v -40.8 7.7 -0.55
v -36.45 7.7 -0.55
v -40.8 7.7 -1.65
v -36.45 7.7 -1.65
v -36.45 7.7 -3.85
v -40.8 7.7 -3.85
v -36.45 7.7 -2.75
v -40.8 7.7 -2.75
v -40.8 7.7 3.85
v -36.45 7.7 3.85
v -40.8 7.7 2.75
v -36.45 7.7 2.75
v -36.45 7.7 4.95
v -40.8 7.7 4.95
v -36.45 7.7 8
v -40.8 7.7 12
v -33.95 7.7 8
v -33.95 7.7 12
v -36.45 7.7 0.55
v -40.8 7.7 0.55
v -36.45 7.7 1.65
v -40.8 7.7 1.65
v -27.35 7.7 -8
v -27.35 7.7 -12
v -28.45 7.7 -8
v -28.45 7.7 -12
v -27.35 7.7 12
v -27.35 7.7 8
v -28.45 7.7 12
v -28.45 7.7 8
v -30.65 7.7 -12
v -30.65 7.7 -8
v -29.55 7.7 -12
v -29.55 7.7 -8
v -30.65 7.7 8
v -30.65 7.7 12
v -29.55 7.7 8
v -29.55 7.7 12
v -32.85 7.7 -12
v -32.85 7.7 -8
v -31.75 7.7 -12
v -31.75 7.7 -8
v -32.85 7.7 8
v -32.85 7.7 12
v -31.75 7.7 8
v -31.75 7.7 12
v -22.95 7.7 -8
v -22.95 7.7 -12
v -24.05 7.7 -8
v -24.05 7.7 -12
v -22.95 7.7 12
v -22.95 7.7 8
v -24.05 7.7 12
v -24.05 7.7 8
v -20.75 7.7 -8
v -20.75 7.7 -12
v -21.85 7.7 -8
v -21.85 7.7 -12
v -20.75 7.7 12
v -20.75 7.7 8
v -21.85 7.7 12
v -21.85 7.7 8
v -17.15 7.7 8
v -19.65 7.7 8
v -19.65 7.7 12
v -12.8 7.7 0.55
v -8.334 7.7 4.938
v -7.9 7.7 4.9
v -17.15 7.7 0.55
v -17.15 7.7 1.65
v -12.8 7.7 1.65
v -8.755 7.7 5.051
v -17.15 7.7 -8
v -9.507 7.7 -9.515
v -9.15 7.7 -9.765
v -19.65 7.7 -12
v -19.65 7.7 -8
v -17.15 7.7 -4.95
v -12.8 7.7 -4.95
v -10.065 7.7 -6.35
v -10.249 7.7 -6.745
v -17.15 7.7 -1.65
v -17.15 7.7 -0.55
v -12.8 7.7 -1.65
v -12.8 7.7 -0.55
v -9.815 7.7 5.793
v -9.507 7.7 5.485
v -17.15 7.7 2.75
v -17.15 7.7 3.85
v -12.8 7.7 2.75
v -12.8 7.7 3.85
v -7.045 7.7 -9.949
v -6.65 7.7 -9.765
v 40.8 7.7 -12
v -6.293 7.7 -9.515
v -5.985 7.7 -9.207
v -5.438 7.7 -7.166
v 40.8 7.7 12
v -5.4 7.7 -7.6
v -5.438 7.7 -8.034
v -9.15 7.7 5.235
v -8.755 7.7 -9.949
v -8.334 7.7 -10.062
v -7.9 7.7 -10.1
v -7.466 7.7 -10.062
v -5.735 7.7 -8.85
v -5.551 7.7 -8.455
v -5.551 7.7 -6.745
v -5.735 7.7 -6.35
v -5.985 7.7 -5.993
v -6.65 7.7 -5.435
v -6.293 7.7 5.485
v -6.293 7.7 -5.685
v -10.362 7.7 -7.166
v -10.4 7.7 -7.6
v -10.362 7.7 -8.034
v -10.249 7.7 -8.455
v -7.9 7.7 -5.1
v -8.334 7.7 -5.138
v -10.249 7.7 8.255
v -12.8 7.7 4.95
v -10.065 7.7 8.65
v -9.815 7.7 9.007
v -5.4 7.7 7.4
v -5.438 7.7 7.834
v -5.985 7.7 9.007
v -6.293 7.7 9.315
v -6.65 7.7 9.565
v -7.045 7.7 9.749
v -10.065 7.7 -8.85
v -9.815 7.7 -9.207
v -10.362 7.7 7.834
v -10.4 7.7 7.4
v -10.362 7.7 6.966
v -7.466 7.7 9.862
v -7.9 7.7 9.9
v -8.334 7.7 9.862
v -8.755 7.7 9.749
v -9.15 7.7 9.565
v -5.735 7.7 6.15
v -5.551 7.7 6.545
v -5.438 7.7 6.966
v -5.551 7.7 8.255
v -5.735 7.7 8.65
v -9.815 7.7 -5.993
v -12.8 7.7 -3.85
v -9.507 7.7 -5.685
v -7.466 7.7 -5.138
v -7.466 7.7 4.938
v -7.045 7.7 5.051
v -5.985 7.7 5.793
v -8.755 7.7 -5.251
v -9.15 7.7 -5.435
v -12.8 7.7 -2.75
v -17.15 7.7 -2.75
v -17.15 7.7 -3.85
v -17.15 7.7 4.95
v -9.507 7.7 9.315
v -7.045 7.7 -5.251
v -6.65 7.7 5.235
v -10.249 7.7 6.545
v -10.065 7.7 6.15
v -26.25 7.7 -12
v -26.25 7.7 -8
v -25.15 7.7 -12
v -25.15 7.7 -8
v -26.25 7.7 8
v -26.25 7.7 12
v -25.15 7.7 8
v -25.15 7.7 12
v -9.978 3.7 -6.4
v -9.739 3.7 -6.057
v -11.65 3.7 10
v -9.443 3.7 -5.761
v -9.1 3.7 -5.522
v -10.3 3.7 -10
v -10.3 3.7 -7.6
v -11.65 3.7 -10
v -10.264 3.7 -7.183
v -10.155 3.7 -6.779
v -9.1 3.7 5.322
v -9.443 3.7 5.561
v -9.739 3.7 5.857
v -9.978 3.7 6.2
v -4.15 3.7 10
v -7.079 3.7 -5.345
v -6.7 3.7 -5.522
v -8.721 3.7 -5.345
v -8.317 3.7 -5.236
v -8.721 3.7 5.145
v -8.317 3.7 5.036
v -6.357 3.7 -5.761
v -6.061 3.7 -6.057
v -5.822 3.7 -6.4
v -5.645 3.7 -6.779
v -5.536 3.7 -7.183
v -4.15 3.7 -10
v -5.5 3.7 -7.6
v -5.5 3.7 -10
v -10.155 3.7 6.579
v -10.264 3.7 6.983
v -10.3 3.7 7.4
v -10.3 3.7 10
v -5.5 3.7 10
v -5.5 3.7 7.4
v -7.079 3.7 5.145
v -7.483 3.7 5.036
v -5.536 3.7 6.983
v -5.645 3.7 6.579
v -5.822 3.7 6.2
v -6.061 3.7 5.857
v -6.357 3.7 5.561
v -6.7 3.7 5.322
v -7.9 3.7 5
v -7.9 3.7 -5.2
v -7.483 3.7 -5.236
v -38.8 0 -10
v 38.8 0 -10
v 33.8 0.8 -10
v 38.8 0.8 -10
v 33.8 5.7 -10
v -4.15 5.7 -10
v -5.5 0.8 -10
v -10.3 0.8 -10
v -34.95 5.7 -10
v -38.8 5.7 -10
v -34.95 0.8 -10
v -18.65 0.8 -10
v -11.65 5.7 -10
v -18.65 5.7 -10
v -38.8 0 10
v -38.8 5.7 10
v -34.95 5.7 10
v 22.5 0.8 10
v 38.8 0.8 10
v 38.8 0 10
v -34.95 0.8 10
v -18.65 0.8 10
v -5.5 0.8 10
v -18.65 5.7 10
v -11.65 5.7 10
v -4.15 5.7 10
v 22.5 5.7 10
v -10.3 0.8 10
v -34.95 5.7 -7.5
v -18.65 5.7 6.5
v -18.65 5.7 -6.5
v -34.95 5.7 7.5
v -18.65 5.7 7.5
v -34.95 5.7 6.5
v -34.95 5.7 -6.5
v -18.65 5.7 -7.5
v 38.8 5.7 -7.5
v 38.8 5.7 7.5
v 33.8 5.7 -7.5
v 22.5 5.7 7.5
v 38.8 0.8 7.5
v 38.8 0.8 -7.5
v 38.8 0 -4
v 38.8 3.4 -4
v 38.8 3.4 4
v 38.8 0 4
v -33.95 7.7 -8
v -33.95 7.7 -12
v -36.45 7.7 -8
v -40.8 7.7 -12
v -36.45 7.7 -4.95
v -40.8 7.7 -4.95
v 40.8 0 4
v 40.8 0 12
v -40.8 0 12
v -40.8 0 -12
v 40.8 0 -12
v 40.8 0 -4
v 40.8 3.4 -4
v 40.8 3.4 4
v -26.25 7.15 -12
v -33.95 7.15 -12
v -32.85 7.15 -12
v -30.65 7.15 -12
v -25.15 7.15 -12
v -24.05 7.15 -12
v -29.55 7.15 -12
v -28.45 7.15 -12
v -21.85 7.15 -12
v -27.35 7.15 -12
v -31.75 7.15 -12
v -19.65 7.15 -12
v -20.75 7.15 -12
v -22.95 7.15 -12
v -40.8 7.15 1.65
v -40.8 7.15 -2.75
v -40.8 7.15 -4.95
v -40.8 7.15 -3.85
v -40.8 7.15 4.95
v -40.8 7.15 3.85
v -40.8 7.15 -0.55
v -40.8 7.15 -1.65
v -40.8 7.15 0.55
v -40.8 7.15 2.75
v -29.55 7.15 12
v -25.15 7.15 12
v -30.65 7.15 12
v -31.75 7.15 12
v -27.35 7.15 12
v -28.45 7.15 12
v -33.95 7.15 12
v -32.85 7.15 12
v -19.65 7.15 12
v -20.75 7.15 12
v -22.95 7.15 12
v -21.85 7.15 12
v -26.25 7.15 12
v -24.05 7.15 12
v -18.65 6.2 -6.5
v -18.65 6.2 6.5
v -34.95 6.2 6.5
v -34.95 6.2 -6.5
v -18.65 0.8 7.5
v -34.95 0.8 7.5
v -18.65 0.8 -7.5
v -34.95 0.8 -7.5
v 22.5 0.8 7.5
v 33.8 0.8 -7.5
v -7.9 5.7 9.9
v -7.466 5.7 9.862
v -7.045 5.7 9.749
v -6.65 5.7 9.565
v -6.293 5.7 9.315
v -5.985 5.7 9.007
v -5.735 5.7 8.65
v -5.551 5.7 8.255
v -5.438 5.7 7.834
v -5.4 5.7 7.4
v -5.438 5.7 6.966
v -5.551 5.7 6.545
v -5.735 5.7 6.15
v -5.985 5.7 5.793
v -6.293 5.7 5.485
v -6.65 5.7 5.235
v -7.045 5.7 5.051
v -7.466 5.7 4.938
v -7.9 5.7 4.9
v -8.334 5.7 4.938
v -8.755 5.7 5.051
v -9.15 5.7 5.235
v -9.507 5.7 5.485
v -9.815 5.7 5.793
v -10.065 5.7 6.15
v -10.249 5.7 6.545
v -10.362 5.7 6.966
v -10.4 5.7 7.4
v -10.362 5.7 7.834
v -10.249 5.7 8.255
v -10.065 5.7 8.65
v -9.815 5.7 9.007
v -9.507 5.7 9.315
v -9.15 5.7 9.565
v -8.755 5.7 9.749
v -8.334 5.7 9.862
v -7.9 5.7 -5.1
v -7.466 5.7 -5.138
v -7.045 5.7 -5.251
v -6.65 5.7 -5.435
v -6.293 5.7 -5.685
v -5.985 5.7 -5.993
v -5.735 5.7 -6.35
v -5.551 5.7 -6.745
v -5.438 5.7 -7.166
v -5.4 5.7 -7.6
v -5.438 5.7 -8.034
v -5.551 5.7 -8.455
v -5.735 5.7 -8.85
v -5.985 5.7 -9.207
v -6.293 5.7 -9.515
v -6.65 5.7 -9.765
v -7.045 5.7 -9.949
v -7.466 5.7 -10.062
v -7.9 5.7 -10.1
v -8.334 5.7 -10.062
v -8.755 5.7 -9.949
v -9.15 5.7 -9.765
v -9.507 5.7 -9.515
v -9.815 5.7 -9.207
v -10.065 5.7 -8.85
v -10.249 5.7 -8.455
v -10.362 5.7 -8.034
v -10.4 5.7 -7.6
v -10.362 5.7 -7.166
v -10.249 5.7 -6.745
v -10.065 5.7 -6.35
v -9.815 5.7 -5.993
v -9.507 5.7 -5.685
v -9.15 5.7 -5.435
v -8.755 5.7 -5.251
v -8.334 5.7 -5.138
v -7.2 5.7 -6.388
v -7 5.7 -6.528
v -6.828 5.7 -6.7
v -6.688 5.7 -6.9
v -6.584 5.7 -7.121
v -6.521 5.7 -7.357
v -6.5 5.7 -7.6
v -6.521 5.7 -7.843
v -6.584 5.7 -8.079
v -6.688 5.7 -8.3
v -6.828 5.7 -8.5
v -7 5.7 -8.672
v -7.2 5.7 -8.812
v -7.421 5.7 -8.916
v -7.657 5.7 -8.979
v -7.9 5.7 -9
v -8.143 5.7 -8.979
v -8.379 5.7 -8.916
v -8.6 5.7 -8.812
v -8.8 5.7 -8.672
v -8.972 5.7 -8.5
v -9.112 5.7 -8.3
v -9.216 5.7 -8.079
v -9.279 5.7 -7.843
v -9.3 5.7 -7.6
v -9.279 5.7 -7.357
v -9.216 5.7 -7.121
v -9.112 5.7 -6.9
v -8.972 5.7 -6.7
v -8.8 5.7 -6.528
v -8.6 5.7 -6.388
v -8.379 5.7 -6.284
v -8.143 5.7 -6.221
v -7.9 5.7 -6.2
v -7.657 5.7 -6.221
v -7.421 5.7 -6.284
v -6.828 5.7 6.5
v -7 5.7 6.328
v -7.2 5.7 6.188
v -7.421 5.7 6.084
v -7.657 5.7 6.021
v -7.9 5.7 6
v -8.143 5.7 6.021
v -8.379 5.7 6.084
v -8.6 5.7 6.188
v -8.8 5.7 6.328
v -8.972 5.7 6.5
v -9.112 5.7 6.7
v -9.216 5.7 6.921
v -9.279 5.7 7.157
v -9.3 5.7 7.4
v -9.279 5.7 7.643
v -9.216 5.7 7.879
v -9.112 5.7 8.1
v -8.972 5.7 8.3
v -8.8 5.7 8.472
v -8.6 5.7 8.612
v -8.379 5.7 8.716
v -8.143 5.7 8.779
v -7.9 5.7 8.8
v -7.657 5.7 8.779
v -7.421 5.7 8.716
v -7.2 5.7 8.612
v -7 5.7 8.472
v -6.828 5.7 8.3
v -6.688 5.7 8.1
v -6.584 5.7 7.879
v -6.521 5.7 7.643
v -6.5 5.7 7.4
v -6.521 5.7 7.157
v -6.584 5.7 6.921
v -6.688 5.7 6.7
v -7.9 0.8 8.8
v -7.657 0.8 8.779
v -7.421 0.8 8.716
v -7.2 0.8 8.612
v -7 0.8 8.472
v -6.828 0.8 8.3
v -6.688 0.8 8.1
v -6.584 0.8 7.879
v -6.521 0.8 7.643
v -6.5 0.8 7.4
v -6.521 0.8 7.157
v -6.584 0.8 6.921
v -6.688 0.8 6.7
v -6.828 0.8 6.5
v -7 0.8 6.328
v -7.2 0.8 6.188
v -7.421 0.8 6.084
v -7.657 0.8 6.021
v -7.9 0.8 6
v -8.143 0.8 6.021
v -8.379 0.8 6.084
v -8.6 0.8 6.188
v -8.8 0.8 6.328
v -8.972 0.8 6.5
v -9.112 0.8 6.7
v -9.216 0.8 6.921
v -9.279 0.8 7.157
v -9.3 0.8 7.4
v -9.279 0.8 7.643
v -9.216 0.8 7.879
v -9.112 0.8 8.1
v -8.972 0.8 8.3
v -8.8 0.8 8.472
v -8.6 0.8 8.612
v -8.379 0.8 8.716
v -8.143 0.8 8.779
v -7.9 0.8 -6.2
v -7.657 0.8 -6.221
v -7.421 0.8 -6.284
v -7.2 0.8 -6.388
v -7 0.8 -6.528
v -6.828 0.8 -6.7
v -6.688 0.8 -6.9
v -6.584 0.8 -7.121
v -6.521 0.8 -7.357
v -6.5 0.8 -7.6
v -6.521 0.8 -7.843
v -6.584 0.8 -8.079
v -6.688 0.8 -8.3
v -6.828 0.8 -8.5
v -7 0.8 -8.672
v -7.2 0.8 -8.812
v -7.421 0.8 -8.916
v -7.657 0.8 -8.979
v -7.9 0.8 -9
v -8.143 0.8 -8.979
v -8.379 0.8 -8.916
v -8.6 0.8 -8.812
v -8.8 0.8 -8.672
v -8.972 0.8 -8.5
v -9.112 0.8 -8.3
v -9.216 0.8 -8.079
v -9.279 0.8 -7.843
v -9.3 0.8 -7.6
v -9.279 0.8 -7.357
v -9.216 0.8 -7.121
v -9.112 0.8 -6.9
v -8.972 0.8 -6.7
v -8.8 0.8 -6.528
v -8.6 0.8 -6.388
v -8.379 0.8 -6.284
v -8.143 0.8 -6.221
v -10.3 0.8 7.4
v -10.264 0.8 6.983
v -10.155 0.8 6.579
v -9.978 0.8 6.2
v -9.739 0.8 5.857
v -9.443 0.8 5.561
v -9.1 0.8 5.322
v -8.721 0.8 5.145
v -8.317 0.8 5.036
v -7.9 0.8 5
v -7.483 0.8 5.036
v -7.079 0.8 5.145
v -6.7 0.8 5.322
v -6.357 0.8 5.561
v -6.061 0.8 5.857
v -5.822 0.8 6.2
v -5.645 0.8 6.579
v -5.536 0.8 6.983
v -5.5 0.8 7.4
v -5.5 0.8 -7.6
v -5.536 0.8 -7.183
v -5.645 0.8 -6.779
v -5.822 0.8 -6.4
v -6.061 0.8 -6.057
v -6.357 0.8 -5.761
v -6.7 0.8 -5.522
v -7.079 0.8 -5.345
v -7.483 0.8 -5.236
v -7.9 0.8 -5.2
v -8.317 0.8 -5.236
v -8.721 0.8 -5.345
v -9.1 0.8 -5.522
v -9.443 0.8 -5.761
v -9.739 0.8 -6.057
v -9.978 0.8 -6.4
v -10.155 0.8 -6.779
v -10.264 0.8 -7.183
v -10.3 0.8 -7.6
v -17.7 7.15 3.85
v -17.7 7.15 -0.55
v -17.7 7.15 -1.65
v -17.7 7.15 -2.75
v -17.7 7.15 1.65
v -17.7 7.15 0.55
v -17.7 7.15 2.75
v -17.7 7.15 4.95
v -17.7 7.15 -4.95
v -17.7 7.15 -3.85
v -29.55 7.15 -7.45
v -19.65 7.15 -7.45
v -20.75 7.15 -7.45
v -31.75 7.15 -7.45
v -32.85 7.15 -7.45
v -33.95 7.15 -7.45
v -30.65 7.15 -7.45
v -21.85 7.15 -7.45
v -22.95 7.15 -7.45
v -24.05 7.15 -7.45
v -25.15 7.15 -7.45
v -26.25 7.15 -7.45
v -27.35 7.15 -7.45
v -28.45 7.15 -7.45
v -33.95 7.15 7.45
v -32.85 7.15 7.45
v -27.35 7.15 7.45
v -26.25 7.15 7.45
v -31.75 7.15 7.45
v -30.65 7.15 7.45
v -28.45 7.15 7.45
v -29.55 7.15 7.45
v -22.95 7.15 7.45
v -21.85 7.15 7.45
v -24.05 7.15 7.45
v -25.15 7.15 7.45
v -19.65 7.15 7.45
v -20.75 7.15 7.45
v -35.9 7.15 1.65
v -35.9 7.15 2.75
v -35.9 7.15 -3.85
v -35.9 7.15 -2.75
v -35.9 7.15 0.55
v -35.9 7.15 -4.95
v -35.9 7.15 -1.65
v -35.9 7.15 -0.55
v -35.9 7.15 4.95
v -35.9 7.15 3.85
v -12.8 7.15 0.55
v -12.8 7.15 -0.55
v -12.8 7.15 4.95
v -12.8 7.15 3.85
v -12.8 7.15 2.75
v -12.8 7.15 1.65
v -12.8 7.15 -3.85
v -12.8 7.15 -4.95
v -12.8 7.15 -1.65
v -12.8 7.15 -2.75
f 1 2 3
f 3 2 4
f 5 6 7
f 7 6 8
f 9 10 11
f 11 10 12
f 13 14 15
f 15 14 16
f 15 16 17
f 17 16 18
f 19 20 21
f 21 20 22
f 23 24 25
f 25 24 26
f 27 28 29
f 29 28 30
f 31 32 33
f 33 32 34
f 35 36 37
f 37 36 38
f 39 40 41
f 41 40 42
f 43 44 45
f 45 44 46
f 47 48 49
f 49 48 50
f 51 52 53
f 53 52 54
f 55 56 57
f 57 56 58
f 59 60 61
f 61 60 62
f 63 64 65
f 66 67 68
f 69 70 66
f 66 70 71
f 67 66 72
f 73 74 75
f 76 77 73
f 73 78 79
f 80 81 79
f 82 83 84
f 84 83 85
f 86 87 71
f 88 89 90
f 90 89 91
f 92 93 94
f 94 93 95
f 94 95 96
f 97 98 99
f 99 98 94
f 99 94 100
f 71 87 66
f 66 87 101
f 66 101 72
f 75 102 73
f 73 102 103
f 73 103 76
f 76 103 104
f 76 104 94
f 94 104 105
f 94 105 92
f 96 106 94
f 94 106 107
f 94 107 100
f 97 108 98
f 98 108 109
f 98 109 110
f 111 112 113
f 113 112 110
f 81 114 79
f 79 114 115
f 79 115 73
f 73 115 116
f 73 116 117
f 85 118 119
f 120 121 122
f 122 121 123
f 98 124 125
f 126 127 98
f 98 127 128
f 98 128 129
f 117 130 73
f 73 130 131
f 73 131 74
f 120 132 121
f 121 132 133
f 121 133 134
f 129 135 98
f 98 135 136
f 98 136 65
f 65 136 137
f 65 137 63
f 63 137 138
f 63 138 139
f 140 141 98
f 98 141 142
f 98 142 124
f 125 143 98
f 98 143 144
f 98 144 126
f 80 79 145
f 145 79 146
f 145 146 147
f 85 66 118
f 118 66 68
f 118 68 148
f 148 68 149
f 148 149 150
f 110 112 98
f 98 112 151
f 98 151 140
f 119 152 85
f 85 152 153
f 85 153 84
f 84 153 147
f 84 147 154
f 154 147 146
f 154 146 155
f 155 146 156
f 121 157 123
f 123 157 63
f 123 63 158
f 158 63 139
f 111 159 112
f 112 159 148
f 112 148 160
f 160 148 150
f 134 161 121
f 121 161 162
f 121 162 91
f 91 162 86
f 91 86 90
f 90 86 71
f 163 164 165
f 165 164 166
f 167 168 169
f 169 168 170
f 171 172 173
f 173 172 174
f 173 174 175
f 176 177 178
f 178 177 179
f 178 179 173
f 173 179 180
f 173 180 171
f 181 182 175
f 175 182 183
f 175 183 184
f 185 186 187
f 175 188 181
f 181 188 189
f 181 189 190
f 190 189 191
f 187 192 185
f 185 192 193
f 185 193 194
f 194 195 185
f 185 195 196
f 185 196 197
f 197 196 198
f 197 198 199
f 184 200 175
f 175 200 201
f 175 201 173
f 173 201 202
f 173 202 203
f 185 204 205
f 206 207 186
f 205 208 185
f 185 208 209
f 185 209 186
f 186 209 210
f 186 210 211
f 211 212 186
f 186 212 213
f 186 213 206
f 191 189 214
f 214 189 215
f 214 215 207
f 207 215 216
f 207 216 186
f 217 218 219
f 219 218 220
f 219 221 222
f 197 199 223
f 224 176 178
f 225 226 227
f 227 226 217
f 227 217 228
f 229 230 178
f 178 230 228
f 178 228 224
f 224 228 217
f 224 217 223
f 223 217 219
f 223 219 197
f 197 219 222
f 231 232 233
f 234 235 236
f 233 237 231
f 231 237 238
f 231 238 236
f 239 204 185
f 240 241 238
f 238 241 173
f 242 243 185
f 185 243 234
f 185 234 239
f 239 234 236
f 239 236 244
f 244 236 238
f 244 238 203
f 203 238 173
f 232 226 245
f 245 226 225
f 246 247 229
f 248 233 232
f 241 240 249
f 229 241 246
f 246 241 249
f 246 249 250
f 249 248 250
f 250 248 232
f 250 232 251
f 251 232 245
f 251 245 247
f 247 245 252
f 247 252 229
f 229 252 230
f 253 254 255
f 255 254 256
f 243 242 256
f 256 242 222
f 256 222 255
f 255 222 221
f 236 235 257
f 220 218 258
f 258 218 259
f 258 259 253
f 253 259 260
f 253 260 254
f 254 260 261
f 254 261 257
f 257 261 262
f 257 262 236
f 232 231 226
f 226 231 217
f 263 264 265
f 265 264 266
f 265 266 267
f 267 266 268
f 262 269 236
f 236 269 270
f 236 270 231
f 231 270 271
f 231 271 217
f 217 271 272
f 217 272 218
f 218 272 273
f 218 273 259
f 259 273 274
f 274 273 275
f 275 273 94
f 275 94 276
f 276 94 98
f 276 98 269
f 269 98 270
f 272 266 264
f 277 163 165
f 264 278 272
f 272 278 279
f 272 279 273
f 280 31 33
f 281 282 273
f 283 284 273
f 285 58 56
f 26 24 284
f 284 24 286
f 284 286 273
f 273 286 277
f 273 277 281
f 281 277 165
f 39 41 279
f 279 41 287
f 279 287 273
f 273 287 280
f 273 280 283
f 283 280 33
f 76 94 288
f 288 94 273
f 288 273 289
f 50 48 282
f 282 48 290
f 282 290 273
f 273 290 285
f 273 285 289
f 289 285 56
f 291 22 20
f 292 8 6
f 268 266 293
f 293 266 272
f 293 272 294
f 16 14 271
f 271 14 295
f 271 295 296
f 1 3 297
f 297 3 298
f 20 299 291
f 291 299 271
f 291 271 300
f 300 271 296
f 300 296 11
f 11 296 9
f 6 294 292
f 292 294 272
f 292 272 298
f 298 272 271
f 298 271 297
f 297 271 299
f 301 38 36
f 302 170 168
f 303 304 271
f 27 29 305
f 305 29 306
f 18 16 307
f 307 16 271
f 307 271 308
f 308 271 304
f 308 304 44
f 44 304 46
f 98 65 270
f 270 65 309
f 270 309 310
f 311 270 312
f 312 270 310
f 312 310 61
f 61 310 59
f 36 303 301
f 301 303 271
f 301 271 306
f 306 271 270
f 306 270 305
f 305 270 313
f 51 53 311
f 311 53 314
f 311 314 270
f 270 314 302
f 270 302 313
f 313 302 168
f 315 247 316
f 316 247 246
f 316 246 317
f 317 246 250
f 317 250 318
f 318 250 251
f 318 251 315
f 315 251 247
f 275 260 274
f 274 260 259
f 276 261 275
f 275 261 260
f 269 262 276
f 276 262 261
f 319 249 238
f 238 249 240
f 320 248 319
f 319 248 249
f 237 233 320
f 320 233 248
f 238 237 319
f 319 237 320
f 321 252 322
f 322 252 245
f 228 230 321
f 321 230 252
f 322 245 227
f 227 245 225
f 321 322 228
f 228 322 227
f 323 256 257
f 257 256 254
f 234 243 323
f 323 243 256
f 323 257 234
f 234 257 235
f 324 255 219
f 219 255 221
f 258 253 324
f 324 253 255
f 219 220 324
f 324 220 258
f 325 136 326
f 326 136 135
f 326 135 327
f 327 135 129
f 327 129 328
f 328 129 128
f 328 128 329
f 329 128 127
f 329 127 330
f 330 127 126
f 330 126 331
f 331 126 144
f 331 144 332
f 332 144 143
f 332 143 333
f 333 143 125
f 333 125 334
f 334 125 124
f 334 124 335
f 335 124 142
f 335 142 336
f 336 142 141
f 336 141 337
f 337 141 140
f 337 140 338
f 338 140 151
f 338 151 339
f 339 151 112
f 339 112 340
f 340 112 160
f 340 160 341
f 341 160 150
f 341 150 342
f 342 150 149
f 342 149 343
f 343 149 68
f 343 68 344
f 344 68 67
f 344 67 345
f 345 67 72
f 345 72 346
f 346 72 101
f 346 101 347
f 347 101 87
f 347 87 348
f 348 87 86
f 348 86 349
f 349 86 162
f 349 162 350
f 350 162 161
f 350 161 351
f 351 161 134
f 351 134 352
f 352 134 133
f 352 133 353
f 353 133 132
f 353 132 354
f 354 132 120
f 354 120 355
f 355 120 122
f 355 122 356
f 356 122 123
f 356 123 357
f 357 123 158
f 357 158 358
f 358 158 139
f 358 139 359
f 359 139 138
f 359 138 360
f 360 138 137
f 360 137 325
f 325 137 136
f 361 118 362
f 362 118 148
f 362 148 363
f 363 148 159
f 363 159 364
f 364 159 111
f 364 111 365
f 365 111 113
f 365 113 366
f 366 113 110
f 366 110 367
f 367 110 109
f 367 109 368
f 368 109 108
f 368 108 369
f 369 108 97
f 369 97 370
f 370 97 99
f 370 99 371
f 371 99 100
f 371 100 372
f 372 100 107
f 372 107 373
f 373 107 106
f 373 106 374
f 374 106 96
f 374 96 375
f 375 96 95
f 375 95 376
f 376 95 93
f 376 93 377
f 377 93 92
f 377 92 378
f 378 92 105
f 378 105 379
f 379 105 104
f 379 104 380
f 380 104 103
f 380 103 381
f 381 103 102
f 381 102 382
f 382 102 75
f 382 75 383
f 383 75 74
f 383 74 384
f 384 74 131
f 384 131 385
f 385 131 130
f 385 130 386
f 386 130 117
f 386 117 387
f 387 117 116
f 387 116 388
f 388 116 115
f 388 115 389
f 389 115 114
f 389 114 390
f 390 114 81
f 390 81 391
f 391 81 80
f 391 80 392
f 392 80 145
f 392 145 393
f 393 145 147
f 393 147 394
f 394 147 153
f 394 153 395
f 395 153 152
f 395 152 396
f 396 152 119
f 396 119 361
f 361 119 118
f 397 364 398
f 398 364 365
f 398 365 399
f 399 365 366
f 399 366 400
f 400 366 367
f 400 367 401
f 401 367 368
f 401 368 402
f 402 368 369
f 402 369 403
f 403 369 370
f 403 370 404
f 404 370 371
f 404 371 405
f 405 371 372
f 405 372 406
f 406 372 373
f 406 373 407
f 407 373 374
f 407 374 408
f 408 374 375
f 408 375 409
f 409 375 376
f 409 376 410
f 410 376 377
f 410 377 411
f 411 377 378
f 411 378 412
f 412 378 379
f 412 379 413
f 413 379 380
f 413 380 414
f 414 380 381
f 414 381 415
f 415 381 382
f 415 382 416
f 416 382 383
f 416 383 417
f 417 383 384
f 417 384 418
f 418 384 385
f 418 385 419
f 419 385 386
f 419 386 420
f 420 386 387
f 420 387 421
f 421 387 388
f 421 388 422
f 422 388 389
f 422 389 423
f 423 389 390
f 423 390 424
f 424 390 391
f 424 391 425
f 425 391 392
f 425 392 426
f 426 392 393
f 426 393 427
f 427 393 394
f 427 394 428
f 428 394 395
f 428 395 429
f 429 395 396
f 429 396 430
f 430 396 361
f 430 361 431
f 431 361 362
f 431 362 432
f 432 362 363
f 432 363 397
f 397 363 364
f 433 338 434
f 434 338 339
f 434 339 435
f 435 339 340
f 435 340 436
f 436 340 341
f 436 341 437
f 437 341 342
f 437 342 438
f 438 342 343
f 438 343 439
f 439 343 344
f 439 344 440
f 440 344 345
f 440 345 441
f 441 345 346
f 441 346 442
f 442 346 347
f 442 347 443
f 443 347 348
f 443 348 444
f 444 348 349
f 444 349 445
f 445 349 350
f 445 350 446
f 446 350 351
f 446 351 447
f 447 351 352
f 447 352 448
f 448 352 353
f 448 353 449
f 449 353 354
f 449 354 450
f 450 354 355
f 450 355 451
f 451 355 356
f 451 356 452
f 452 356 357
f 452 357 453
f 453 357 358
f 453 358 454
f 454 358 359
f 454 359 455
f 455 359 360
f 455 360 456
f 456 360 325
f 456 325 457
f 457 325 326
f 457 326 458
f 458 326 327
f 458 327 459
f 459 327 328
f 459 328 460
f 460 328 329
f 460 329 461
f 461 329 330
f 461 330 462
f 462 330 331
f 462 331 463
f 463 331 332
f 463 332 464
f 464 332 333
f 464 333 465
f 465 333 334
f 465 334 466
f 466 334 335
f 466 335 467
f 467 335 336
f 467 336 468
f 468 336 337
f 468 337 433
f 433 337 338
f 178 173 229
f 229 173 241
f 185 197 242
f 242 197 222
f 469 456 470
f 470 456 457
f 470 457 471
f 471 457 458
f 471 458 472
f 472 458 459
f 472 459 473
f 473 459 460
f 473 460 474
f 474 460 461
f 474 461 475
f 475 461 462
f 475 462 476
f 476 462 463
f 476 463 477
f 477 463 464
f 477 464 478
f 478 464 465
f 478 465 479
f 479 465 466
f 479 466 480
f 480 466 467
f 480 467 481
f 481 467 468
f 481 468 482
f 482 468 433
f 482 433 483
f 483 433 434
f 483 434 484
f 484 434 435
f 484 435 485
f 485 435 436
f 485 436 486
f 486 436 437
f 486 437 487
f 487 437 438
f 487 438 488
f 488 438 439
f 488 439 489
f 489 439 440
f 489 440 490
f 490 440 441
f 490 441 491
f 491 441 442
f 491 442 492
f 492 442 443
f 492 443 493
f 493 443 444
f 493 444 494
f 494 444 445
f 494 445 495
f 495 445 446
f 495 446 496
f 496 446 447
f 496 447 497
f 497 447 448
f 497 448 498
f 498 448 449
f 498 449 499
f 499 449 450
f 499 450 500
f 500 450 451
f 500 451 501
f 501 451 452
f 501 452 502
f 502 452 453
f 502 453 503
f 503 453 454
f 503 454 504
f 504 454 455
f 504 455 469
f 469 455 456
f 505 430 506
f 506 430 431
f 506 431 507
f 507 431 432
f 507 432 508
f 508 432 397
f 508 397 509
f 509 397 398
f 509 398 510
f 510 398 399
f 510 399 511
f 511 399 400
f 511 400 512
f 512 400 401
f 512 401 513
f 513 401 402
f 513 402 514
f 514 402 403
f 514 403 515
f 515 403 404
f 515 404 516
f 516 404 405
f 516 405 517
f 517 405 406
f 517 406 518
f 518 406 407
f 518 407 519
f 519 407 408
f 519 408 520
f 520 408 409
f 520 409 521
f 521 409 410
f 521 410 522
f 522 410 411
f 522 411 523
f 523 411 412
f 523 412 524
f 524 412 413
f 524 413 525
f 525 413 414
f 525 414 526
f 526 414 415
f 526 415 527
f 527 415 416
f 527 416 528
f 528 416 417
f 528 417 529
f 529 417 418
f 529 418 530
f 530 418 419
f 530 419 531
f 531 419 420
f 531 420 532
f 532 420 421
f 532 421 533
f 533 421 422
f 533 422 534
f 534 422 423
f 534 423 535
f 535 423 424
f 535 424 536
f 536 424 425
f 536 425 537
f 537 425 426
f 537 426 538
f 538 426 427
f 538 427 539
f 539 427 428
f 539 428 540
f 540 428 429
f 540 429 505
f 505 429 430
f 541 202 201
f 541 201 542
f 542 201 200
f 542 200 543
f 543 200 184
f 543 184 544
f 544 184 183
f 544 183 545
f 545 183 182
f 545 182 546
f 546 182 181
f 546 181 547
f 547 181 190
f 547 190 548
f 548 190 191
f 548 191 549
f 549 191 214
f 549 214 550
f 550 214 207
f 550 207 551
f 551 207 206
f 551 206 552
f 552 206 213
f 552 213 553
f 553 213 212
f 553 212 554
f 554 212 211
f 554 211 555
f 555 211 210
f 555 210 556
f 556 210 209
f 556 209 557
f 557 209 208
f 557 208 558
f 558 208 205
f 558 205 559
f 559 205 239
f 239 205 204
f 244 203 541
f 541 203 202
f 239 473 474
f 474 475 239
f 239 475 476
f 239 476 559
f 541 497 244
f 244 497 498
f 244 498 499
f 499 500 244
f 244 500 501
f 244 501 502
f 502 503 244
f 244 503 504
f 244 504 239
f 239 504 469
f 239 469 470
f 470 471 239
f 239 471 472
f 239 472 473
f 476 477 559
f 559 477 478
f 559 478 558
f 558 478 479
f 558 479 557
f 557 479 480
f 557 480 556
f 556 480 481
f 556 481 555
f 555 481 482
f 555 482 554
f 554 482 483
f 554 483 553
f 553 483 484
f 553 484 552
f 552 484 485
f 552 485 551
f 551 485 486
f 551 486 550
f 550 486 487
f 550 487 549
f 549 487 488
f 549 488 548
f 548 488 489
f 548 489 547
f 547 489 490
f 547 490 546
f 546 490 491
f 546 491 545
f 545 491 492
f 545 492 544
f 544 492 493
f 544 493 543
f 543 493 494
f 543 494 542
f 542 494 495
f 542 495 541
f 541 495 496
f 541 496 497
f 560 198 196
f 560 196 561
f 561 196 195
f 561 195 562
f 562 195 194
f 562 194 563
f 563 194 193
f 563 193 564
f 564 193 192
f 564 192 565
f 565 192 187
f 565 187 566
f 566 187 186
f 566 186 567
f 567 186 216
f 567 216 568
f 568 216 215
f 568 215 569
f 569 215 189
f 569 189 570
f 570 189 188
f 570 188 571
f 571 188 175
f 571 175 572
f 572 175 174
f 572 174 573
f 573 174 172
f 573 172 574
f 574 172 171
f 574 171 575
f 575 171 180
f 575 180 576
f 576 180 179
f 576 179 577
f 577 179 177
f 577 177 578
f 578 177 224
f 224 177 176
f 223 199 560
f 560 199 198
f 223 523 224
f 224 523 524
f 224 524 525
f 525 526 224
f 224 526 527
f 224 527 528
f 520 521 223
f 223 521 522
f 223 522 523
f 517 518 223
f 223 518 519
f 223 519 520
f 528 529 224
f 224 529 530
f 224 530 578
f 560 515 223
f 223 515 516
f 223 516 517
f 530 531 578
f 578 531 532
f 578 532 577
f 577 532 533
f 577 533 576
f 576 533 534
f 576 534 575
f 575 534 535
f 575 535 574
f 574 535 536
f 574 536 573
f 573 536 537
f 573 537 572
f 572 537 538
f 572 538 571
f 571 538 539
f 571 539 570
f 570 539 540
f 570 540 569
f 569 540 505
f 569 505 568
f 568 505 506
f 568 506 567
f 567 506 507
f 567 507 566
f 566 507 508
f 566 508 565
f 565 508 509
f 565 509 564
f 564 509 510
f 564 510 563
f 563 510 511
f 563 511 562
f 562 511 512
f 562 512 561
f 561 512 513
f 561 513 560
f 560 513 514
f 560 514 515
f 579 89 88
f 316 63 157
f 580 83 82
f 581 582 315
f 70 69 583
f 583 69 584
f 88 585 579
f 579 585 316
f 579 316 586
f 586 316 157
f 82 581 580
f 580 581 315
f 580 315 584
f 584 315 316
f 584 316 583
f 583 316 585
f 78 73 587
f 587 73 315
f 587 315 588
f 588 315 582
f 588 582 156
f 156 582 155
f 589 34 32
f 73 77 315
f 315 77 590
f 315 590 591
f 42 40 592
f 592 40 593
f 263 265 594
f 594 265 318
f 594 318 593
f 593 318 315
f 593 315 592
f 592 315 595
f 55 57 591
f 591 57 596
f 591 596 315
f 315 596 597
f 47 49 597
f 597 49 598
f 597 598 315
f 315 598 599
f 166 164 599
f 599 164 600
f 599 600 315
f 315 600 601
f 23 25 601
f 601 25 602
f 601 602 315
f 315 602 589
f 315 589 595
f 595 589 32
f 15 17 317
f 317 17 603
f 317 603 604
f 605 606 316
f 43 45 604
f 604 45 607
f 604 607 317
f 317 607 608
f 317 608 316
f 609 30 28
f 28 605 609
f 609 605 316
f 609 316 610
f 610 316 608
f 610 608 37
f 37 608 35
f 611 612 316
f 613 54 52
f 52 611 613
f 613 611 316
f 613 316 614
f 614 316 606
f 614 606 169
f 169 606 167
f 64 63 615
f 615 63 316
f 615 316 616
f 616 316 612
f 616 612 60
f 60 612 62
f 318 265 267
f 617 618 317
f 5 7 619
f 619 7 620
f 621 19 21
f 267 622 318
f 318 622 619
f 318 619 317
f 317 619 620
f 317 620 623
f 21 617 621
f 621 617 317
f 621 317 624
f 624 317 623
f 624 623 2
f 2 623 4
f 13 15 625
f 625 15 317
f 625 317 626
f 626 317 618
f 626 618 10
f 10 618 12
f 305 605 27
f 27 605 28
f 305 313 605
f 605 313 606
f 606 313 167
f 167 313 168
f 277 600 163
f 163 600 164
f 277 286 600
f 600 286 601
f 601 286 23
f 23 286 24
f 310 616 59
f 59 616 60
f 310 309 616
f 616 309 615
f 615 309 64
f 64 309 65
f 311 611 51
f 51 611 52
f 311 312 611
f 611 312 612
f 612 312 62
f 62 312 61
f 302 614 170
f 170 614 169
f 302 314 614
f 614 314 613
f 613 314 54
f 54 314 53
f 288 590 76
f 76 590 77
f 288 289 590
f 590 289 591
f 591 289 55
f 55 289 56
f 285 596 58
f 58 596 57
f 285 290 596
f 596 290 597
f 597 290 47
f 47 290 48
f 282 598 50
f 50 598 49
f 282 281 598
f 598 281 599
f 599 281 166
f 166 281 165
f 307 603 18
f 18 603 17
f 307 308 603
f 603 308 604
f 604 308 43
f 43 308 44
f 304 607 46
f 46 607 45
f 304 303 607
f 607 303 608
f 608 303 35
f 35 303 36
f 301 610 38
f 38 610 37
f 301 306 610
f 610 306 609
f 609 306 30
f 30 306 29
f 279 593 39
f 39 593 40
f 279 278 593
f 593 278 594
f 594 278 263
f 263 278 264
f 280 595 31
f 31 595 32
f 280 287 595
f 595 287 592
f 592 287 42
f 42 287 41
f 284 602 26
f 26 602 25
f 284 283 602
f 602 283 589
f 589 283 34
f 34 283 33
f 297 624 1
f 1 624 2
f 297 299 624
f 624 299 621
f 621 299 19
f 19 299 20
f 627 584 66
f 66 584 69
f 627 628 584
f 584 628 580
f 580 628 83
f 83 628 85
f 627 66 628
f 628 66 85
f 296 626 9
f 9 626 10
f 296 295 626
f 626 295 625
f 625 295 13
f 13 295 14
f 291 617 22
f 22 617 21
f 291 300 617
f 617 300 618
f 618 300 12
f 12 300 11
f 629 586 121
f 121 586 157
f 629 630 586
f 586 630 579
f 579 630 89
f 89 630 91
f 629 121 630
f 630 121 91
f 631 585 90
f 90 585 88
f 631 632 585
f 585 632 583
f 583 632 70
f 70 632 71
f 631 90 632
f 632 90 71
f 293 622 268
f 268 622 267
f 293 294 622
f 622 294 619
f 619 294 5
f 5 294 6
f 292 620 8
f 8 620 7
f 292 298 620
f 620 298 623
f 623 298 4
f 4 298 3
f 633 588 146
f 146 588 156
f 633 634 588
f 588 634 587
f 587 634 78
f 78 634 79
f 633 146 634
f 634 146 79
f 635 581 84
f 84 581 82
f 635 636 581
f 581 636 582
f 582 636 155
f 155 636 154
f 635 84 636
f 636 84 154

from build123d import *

# Parameters (mm, degrees)
SKETCH2_W           = 81.6
SKETCH2_H           = 24
SKETCH2_W_2         = 77.6
SKETCH2_H_2         = 20
BOSS_EXTRUDE1_DEPTH = 7.7
SKETCH3_W           = 77.6
SKETCH3_H           = 20
BOSS_EXTRUDE2_DEPTH = 2
SKETCH4_W           = 16.3
SKETCH4_H           = 13
CUT_EXTRUDE1_DEPTH  = 8.7
CUT_EXTRUDE2_REACH  = 83.6
SKETCH5_W           = 8
SKETCH5_H           = 6.8
SKETCH6_W           = 16.3
SKETCH6_H           = 2.5
SKETCH6_W_2         = 5
BOSS_EXTRUDE3_DEPTH = 4.9
SKETCH8_R           = 2.5
CUT_EXTRUDE3_DEPTH  = 2
SKETCH9_R           = 1.4
BOSS_EXTRUDE4_DEPTH = 2
SKETCH10_R          = 1.4
BOSS_EXTRUDE5_DEPTH = 2.9
CHAMFER1_SIZE       = 1.5
SKETCH11_W          = 1.1
SKETCH11_H          = 1.1
CUT_EXTRUDE4_DEPTH  = 25
LPATTERN1_COUNT     = 4
LPATTERN1_PITCH     = 2.2
LPATTERN2_COUNT     = 4
LPATTERN2_PITCH     = 2.2
SKETCH12_W          = 1.1
SKETCH12_H          = 1.1
CUT_EXTRUDE5_DEPTH  = 28
LPATTERN3_COUNT     = 3
LPATTERN3_PITCH     = 2.2
LPATTERN4_COUNT     = 3
LPATTERN4_PITCH     = 2.2


with BuildPart() as part:
    # Sketch2 → Boss-Extrude1 (new body)
    with BuildSketch(Plane(origin=(0, 0, 0), x_dir=(1, 0, 0), z_dir=(0, 1, 0))):
        Rectangle(SKETCH2_W, SKETCH2_H)
        Rectangle(SKETCH2_W_2, SKETCH2_H_2, mode=Mode.SUBTRACT)
    extrude(amount=BOSS_EXTRUDE1_DEPTH)

    # Sketch3 → Boss-Extrude2 (add)
    with BuildSketch(Plane(origin=(0, 7.7, 0), x_dir=(1, 0, 0), z_dir=(0, 1, 0))):
        Rectangle(SKETCH3_W, SKETCH3_H)
    extrude(amount=-BOSS_EXTRUDE2_DEPTH)

    # Sketch4 → Cut-Extrude1 (cut, through all)
    with BuildSketch(Plane(origin=(0, 7.7, 0), x_dir=(1, 0, 0), z_dir=(0, 1, 0))):
        with Locations((-26.8, 0)):
            Rectangle(SKETCH4_W, SKETCH4_H)
    extrude(amount=-CUT_EXTRUDE1_DEPTH, mode=Mode.SUBTRACT)

    # Sketch5 → Cut-Extrude2 (cut, up to next)
    with BuildSketch(Plane(origin=(40.8, 0, 0), x_dir=(0, 0, -1), z_dir=(1, 0, 0)), mode=Mode.PRIVATE) as cut_extrude2_sk1:
        Rectangle(SKETCH5_W, SKETCH5_H)
    cut_extrude2_tool1 = extrude(cut_extrude2_sk1.sketch, amount=-CUT_EXTRUDE2_REACH, mode=Mode.PRIVATE) & part.part
    add(cut_extrude2_tool1.solids().sort_by_distance((40.8, 0, 0))[0], mode=Mode.SUBTRACT)

    # Sketch6 → Boss-Extrude3 (add)
    with BuildSketch(Plane.XZ.offset(-5.7)):
        with Locations((-26.8, 8.75)):
            Rectangle(SKETCH6_W, SKETCH6_H)
        with Locations((-26.8, -8.75)):
            Rectangle(SKETCH6_W, SKETCH6_H)
        with Locations((30.65, 8.75)):
            Rectangle(SKETCH6_W, SKETCH6_H)
        with Locations((36.3, -8.75)):
            Rectangle(SKETCH6_W_2, SKETCH6_H)
    extrude(amount=BOSS_EXTRUDE3_DEPTH)

    # Sketch8 → Cut-Extrude3 (cut)
    with BuildSketch(Plane(origin=(0, 7.7, 0), x_dir=(1, 0, 0), z_dir=(0, 1, 0))):
        with Locations((-7.9, 7.6)):
            Circle(SKETCH8_R)
        with Locations((-7.9, -7.4)):
            Circle(SKETCH8_R)
    extrude(amount=-CUT_EXTRUDE3_DEPTH, mode=Mode.SUBTRACT)

    # Sketch9 → Boss-Extrude4 (add)
    with BuildSketch(Plane.XZ.offset(-5.7)):
        Polygon((-4.15, 4.8), (-4.15, 10), (-11.65, 10), (-11.65, 4.8), (-11.65, -5.2), (-11.65, -10), (-4.15, -10), (-4.15, -5.2), align=None)
        with Locations((-7.9, 7.4)):
            Circle(SKETCH9_R, mode=Mode.SUBTRACT)
        with Locations((-7.9, -7.6)):
            Circle(SKETCH9_R, mode=Mode.SUBTRACT)
    extrude(amount=BOSS_EXTRUDE4_DEPTH)

    # Sketch10 → Boss-Extrude5 (add)
    with BuildSketch(Plane.XZ.offset(-3.7)):
        with BuildLine():
            Line((-10.3, 7.4), (-10.3, 10))
            Line((-10.3, 10), (-5.5, 10))
            Line((-5.5, 10), (-5.5, 7.4))
            ThreePointArc((-5.5, 7.4), (-7.9, 5), (-10.3, 7.4))
        make_face()
        with Locations((-7.9, 7.4)):
            Circle(SKETCH10_R, mode=Mode.SUBTRACT)
        with BuildLine():
            Line((-10.3, -7.6), (-10.3, -10))
            Line((-10.3, -10), (-5.5, -10))
            Line((-5.5, -10), (-5.5, -7.6))
            ThreePointArc((-5.5, -7.6), (-7.9, -5.2), (-10.3, -7.6))
        make_face()
        with Locations((-7.9, -7.6)):
            Circle(SKETCH10_R, mode=Mode.SUBTRACT)
    extrude(amount=BOSS_EXTRUDE5_DEPTH)

    # Chamfer1
    chamfer1_edges = [part.edges().sort_by_distance(p)[0] for p in [
        (-18.65, 7.7, 0),
        (-26.8, 7.7, -6.5),
        (-34.95, 7.7, 0),
        (-26.8, 7.7, 6.5),
    ]]
    chamfer(chamfer1_edges, length=CHAMFER1_SIZE)

    # Sketch11 → Cut-Extrude4 (cut, through all)
    with BuildSketch(Plane.XY.offset(12)):
        with Locations((-26.8, 7.7)):
            Rectangle(SKETCH11_W, SKETCH11_H)
    cut_extrude4 = extrude(amount=-CUT_EXTRUDE4_DEPTH, mode=Mode.SUBTRACT)

    # LPattern1: Cut-Extrude4 ×4
    with Locations(*[(i * LPATTERN1_PITCH, 0, 0) for i in range(1, LPATTERN1_COUNT)]):
        add(cut_extrude4, mode=Mode.SUBTRACT)

    # LPattern2: Cut-Extrude4 ×4
    with Locations(*[(-i * LPATTERN2_PITCH, 0, 0) for i in range(1, LPATTERN2_COUNT)]):
        add(cut_extrude4, mode=Mode.SUBTRACT)

    # Sketch12 → Cut-Extrude5 (cut)
    with BuildSketch(Plane.ZY.offset(40.8)):
        with Locations((0, 7.7)):
            Rectangle(SKETCH12_W, SKETCH12_H)
    cut_extrude5 = extrude(amount=-CUT_EXTRUDE5_DEPTH, mode=Mode.SUBTRACT)

    # LPattern3: Cut-Extrude5 ×3
    with Locations(*[(0, 0, i * LPATTERN3_PITCH) for i in range(1, LPATTERN3_COUNT)]):
        add(cut_extrude5, mode=Mode.SUBTRACT)

    # LPattern4: Cut-Extrude5 ×3
    with Locations(*[(0, 0, -i * LPATTERN4_PITCH) for i in range(1, LPATTERN4_COUNT)]):
        add(cut_extrude5, mode=Mode.SUBTRACT)


solid = part.part
